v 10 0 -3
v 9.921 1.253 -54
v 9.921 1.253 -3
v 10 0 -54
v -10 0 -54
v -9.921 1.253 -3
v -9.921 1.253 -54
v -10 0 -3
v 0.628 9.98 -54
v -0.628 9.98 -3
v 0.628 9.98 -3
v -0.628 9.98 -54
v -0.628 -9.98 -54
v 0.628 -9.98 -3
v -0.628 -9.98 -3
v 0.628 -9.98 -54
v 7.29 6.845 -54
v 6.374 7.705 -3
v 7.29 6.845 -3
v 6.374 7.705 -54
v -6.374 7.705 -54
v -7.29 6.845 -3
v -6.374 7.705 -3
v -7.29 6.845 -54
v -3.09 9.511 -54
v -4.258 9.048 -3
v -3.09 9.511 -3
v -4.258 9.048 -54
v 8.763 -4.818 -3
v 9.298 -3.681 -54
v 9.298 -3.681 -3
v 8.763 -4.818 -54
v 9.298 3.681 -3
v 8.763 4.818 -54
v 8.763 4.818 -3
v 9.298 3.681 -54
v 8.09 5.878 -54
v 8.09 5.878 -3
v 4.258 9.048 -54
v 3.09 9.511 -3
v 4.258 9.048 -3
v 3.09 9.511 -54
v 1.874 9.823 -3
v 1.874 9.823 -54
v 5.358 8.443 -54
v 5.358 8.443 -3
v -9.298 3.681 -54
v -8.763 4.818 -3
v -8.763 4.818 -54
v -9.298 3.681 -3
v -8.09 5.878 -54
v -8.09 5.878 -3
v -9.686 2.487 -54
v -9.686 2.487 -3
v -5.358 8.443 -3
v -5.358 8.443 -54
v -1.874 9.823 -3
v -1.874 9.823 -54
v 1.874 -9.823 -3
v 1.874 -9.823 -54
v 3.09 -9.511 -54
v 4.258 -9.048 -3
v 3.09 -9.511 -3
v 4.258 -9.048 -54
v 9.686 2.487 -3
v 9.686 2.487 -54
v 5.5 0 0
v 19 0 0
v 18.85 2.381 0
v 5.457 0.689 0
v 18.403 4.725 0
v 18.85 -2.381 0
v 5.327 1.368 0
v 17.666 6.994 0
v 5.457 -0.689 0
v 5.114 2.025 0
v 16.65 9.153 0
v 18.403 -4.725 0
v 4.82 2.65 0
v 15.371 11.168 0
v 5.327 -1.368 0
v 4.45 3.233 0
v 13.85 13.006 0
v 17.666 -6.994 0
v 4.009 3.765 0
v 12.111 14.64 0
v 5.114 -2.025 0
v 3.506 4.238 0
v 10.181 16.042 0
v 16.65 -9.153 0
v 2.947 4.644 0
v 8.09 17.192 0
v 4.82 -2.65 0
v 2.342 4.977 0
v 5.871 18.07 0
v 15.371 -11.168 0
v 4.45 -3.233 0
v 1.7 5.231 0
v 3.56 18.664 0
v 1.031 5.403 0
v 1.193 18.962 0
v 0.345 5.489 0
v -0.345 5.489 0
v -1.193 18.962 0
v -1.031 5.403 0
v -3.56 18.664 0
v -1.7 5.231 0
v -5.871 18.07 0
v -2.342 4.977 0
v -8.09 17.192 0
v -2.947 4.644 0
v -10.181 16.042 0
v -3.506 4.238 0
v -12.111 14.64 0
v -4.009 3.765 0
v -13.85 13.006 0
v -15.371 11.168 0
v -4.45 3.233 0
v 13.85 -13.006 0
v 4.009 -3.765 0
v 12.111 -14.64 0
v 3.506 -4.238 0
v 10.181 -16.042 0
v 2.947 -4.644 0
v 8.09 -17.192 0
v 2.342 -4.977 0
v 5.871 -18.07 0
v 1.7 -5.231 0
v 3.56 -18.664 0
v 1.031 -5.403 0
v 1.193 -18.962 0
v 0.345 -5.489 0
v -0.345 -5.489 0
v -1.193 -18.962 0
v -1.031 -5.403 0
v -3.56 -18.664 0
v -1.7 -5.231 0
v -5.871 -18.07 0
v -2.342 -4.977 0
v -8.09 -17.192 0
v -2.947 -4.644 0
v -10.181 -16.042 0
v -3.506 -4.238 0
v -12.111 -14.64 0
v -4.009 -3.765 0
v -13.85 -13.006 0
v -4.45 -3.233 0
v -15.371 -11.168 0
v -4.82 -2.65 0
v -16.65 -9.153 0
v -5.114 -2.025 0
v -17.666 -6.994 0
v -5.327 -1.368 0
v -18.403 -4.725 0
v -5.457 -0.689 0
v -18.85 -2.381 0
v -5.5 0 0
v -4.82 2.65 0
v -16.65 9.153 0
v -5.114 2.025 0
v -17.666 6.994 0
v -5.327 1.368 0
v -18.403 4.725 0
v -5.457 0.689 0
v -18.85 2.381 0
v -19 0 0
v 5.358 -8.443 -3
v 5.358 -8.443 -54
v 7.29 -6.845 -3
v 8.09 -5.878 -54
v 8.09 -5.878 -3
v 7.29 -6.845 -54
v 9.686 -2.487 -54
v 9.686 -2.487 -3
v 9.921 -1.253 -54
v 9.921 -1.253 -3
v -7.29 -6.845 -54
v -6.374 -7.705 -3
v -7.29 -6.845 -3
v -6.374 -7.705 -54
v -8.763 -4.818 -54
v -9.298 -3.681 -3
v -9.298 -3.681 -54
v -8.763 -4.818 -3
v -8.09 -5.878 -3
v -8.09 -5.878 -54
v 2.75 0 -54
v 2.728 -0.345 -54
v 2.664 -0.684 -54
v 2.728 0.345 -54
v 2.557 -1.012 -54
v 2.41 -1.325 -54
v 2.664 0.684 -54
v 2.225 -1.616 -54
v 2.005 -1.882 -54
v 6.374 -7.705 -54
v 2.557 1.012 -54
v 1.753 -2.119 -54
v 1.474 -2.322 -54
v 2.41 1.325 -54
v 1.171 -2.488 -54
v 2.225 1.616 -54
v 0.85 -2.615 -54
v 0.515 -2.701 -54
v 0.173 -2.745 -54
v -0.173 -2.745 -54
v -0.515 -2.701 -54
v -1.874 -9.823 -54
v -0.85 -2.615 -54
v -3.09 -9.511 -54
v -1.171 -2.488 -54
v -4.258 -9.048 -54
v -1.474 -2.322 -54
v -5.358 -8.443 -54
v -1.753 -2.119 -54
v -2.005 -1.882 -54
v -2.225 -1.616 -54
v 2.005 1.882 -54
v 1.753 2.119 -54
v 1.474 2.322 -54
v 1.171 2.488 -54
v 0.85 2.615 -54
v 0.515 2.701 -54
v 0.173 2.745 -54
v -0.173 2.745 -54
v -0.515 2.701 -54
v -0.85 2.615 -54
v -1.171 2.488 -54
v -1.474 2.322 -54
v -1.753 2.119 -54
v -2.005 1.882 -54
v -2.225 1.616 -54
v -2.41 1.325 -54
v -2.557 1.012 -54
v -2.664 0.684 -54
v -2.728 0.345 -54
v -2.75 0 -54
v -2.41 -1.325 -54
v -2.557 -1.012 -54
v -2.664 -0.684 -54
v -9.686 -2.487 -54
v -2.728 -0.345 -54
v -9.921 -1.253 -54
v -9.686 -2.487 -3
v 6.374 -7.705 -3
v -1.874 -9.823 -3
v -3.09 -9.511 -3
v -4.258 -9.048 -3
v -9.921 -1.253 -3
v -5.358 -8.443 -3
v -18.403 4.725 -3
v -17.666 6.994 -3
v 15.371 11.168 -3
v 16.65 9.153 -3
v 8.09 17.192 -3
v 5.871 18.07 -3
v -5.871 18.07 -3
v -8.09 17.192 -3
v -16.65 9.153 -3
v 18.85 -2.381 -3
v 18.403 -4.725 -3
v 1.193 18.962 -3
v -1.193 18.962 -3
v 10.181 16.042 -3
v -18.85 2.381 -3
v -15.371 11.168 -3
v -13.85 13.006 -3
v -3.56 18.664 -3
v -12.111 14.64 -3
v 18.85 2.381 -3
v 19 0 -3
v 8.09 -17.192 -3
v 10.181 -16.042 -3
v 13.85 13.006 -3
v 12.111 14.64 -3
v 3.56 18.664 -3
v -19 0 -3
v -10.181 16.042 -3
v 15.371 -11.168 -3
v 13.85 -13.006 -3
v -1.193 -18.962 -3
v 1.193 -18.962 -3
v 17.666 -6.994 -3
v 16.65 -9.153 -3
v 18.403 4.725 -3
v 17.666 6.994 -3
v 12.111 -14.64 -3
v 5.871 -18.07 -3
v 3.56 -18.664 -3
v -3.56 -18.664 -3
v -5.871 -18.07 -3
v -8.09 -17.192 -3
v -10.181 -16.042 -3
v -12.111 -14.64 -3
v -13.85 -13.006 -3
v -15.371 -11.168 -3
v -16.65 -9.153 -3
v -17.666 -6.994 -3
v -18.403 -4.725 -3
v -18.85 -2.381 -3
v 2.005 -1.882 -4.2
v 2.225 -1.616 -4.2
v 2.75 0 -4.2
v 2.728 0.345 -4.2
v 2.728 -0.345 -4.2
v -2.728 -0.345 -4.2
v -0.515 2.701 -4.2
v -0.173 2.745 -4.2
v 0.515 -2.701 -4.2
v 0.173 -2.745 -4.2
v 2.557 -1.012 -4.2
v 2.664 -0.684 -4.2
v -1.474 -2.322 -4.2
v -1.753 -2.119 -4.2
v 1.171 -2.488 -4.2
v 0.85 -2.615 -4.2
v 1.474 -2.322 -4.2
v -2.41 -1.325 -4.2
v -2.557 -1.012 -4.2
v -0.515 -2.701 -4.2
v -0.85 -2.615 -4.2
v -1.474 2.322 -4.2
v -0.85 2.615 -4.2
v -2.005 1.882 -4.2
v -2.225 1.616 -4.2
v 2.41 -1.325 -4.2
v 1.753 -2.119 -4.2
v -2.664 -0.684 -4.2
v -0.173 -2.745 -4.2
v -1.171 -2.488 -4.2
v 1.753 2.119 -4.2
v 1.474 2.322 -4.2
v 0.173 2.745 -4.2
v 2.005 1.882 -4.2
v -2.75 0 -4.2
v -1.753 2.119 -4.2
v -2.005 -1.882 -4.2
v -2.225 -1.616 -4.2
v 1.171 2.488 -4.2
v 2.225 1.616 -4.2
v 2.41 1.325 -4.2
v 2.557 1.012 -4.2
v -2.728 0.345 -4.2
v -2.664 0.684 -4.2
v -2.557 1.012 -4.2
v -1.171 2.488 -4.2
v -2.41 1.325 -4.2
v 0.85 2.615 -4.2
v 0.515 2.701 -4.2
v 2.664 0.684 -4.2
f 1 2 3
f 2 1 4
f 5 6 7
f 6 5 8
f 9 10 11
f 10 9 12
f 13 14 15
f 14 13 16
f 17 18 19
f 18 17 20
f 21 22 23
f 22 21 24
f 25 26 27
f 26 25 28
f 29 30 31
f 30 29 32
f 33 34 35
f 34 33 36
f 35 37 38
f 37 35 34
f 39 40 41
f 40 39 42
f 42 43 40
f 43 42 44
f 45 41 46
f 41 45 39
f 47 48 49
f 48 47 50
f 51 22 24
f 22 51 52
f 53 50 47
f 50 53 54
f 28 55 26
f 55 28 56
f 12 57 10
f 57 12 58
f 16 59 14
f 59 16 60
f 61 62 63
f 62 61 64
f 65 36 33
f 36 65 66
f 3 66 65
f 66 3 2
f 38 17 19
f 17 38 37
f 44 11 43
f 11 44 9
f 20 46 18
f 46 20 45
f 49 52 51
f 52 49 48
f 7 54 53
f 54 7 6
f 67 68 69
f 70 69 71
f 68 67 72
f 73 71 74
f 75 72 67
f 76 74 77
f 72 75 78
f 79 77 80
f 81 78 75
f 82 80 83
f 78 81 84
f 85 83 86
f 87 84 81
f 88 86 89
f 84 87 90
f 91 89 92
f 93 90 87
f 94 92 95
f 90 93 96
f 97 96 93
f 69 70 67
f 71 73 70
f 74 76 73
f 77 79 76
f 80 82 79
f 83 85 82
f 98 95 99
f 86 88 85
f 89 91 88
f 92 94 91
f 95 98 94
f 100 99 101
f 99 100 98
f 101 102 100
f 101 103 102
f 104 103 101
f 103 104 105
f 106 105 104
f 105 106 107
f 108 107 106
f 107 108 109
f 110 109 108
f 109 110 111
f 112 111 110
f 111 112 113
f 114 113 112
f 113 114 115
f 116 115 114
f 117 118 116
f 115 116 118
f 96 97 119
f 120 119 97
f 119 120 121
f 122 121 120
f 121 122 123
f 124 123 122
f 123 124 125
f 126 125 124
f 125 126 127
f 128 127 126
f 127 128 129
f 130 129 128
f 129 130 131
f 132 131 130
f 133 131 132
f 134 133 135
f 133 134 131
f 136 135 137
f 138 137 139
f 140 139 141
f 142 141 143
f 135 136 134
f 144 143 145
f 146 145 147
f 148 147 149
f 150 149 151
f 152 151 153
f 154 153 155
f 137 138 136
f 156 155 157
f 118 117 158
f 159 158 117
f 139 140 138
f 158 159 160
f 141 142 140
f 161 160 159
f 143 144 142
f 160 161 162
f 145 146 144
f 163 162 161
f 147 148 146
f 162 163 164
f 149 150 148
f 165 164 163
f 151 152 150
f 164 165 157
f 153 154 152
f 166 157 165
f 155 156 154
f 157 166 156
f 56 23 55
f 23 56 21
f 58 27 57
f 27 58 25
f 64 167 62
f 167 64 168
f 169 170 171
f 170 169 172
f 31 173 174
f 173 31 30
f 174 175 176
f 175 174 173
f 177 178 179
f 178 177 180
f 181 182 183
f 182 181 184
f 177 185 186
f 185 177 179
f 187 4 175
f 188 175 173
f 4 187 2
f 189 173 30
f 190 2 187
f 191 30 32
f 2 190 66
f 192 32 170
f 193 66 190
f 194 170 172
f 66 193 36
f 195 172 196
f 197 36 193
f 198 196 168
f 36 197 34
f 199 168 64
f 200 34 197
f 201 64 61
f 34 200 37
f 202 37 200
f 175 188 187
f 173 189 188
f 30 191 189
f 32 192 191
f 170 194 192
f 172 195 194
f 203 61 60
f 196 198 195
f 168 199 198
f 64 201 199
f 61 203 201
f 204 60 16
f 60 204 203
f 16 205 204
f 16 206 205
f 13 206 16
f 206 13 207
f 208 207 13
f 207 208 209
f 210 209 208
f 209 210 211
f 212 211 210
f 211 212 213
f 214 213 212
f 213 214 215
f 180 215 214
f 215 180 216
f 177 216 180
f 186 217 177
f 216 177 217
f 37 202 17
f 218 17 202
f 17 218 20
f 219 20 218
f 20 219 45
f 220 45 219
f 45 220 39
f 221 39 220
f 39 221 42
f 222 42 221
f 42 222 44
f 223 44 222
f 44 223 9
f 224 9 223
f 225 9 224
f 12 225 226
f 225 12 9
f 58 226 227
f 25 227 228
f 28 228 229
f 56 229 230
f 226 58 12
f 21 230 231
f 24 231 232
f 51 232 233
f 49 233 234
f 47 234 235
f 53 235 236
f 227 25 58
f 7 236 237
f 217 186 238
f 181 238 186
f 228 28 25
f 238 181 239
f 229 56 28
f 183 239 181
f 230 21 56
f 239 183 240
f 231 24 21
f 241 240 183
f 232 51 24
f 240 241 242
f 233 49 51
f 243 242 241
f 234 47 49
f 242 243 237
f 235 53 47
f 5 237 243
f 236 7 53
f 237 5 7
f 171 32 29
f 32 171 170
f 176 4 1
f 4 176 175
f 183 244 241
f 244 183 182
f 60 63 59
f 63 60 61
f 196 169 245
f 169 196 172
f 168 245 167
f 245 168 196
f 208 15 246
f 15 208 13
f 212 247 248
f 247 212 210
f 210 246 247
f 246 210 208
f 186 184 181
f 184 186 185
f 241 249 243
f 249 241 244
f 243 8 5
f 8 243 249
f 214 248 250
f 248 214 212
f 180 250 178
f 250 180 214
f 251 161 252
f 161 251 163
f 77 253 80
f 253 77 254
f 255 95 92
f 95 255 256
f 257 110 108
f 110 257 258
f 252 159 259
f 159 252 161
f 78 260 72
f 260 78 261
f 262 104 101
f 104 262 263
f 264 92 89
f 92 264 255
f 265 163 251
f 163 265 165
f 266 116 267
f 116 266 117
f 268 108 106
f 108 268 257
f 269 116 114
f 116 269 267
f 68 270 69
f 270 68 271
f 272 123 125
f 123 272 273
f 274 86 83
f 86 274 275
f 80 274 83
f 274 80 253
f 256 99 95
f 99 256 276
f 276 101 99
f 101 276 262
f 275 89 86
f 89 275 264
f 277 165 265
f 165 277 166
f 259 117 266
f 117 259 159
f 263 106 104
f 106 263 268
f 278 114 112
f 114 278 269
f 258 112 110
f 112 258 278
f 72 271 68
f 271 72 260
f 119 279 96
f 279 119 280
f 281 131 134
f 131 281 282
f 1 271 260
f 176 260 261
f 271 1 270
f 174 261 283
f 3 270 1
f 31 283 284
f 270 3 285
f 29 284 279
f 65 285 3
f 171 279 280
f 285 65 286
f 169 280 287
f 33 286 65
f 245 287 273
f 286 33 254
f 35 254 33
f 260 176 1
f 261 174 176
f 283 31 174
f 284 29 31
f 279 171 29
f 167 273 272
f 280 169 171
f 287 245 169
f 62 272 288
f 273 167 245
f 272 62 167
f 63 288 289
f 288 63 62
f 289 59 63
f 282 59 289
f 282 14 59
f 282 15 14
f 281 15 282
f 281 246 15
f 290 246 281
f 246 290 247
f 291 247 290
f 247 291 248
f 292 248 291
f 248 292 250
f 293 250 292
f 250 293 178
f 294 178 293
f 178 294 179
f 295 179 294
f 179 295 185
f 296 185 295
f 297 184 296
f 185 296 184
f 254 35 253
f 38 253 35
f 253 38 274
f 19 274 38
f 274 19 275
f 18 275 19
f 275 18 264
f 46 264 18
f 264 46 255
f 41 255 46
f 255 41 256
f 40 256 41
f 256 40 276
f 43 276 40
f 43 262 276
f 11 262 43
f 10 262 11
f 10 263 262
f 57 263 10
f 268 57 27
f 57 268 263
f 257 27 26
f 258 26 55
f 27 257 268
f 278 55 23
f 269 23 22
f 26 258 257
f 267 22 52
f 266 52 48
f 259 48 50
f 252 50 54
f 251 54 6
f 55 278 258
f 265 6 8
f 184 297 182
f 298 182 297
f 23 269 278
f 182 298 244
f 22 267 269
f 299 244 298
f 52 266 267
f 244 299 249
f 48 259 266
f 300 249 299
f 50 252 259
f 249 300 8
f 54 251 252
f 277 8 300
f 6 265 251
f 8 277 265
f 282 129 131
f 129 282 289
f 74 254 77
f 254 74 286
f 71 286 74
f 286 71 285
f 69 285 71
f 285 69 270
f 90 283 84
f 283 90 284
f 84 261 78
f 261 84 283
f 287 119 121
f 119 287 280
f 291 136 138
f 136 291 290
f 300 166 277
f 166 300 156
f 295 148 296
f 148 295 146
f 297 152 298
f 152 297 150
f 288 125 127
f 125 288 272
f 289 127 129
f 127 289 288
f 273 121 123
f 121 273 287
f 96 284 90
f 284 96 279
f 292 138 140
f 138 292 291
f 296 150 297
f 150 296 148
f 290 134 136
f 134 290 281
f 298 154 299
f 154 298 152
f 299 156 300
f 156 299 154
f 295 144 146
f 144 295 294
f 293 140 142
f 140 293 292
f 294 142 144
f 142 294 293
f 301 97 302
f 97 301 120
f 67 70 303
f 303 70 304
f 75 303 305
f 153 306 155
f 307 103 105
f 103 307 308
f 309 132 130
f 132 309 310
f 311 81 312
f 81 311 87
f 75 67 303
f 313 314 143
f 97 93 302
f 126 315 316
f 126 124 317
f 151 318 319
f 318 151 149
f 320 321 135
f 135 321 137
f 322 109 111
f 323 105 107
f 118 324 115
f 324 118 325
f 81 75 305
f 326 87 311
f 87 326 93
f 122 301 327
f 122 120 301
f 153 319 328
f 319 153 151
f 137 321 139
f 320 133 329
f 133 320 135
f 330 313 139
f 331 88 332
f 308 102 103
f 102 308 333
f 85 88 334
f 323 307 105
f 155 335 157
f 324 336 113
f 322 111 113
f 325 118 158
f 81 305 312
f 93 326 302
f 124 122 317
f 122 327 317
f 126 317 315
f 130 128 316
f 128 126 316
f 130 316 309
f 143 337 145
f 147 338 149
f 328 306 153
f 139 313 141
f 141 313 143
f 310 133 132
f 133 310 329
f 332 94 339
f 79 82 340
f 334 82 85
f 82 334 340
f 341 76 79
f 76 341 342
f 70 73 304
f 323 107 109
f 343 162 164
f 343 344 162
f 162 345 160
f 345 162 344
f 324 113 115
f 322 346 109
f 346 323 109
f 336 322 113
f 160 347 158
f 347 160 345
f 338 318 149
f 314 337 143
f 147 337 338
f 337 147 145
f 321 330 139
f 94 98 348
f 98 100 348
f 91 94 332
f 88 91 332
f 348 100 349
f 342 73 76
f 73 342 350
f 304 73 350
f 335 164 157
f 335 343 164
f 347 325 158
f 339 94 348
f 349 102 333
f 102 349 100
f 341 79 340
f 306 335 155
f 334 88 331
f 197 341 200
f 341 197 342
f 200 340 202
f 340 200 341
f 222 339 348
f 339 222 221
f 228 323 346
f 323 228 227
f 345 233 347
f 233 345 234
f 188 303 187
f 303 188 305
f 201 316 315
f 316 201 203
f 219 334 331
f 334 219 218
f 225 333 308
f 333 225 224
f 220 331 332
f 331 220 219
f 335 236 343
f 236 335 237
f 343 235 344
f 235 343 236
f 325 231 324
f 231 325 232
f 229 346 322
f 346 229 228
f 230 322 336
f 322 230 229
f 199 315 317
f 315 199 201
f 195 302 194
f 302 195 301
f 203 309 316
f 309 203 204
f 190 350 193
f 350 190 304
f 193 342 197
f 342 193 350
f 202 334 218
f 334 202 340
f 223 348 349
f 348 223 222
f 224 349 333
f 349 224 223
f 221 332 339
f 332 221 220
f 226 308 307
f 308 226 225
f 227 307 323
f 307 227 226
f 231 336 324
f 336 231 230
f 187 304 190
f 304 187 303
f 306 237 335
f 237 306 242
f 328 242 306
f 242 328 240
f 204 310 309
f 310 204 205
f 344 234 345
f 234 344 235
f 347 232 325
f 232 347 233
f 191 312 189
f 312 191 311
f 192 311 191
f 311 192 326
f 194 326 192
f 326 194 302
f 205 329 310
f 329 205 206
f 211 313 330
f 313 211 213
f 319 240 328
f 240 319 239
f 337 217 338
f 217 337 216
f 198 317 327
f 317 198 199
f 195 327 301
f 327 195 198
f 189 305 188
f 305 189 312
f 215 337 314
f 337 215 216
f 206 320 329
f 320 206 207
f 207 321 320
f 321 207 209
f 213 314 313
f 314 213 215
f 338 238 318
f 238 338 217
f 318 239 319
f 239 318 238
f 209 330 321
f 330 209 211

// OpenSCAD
$fn = 50;


difference() {
	union() {
		translate(v = [0, 0, -54.0000000000]) {
			cylinder(h = 54, r = 10.0000000000);
		}
		translate(v = [0, 0, -3.0000000000]) {
			cylinder(h = 3, r = 19.0000000000);
		}
	}
	union() {
		translate(v = [0, 0, 0]) {
			rotate(a = [0, 0, 0]) {
				difference() {
					union() {
						#translate(v = [0, 0, -54.0000000000]) {
							cylinder(h = 54, r = 2.2500000000);
						}
						#translate(v = [0, 0, -4.2000000000]) {
							cylinder(h = 4.2000000000, r = 10.0000000000, r1 = 2.7500000000, r2 = 5.5000000000);
						}
						#translate(v = [0, 0, -54.0000000000]) {
							cylinder(h = 54, r = 2.7500000000);
						}
						#translate(v = [0, 0, -54.0000000000]) {
							cylinder(h = 54, r = 2.2500000000);
						}
					}
					union();
				}
			}
		}
	}
}
